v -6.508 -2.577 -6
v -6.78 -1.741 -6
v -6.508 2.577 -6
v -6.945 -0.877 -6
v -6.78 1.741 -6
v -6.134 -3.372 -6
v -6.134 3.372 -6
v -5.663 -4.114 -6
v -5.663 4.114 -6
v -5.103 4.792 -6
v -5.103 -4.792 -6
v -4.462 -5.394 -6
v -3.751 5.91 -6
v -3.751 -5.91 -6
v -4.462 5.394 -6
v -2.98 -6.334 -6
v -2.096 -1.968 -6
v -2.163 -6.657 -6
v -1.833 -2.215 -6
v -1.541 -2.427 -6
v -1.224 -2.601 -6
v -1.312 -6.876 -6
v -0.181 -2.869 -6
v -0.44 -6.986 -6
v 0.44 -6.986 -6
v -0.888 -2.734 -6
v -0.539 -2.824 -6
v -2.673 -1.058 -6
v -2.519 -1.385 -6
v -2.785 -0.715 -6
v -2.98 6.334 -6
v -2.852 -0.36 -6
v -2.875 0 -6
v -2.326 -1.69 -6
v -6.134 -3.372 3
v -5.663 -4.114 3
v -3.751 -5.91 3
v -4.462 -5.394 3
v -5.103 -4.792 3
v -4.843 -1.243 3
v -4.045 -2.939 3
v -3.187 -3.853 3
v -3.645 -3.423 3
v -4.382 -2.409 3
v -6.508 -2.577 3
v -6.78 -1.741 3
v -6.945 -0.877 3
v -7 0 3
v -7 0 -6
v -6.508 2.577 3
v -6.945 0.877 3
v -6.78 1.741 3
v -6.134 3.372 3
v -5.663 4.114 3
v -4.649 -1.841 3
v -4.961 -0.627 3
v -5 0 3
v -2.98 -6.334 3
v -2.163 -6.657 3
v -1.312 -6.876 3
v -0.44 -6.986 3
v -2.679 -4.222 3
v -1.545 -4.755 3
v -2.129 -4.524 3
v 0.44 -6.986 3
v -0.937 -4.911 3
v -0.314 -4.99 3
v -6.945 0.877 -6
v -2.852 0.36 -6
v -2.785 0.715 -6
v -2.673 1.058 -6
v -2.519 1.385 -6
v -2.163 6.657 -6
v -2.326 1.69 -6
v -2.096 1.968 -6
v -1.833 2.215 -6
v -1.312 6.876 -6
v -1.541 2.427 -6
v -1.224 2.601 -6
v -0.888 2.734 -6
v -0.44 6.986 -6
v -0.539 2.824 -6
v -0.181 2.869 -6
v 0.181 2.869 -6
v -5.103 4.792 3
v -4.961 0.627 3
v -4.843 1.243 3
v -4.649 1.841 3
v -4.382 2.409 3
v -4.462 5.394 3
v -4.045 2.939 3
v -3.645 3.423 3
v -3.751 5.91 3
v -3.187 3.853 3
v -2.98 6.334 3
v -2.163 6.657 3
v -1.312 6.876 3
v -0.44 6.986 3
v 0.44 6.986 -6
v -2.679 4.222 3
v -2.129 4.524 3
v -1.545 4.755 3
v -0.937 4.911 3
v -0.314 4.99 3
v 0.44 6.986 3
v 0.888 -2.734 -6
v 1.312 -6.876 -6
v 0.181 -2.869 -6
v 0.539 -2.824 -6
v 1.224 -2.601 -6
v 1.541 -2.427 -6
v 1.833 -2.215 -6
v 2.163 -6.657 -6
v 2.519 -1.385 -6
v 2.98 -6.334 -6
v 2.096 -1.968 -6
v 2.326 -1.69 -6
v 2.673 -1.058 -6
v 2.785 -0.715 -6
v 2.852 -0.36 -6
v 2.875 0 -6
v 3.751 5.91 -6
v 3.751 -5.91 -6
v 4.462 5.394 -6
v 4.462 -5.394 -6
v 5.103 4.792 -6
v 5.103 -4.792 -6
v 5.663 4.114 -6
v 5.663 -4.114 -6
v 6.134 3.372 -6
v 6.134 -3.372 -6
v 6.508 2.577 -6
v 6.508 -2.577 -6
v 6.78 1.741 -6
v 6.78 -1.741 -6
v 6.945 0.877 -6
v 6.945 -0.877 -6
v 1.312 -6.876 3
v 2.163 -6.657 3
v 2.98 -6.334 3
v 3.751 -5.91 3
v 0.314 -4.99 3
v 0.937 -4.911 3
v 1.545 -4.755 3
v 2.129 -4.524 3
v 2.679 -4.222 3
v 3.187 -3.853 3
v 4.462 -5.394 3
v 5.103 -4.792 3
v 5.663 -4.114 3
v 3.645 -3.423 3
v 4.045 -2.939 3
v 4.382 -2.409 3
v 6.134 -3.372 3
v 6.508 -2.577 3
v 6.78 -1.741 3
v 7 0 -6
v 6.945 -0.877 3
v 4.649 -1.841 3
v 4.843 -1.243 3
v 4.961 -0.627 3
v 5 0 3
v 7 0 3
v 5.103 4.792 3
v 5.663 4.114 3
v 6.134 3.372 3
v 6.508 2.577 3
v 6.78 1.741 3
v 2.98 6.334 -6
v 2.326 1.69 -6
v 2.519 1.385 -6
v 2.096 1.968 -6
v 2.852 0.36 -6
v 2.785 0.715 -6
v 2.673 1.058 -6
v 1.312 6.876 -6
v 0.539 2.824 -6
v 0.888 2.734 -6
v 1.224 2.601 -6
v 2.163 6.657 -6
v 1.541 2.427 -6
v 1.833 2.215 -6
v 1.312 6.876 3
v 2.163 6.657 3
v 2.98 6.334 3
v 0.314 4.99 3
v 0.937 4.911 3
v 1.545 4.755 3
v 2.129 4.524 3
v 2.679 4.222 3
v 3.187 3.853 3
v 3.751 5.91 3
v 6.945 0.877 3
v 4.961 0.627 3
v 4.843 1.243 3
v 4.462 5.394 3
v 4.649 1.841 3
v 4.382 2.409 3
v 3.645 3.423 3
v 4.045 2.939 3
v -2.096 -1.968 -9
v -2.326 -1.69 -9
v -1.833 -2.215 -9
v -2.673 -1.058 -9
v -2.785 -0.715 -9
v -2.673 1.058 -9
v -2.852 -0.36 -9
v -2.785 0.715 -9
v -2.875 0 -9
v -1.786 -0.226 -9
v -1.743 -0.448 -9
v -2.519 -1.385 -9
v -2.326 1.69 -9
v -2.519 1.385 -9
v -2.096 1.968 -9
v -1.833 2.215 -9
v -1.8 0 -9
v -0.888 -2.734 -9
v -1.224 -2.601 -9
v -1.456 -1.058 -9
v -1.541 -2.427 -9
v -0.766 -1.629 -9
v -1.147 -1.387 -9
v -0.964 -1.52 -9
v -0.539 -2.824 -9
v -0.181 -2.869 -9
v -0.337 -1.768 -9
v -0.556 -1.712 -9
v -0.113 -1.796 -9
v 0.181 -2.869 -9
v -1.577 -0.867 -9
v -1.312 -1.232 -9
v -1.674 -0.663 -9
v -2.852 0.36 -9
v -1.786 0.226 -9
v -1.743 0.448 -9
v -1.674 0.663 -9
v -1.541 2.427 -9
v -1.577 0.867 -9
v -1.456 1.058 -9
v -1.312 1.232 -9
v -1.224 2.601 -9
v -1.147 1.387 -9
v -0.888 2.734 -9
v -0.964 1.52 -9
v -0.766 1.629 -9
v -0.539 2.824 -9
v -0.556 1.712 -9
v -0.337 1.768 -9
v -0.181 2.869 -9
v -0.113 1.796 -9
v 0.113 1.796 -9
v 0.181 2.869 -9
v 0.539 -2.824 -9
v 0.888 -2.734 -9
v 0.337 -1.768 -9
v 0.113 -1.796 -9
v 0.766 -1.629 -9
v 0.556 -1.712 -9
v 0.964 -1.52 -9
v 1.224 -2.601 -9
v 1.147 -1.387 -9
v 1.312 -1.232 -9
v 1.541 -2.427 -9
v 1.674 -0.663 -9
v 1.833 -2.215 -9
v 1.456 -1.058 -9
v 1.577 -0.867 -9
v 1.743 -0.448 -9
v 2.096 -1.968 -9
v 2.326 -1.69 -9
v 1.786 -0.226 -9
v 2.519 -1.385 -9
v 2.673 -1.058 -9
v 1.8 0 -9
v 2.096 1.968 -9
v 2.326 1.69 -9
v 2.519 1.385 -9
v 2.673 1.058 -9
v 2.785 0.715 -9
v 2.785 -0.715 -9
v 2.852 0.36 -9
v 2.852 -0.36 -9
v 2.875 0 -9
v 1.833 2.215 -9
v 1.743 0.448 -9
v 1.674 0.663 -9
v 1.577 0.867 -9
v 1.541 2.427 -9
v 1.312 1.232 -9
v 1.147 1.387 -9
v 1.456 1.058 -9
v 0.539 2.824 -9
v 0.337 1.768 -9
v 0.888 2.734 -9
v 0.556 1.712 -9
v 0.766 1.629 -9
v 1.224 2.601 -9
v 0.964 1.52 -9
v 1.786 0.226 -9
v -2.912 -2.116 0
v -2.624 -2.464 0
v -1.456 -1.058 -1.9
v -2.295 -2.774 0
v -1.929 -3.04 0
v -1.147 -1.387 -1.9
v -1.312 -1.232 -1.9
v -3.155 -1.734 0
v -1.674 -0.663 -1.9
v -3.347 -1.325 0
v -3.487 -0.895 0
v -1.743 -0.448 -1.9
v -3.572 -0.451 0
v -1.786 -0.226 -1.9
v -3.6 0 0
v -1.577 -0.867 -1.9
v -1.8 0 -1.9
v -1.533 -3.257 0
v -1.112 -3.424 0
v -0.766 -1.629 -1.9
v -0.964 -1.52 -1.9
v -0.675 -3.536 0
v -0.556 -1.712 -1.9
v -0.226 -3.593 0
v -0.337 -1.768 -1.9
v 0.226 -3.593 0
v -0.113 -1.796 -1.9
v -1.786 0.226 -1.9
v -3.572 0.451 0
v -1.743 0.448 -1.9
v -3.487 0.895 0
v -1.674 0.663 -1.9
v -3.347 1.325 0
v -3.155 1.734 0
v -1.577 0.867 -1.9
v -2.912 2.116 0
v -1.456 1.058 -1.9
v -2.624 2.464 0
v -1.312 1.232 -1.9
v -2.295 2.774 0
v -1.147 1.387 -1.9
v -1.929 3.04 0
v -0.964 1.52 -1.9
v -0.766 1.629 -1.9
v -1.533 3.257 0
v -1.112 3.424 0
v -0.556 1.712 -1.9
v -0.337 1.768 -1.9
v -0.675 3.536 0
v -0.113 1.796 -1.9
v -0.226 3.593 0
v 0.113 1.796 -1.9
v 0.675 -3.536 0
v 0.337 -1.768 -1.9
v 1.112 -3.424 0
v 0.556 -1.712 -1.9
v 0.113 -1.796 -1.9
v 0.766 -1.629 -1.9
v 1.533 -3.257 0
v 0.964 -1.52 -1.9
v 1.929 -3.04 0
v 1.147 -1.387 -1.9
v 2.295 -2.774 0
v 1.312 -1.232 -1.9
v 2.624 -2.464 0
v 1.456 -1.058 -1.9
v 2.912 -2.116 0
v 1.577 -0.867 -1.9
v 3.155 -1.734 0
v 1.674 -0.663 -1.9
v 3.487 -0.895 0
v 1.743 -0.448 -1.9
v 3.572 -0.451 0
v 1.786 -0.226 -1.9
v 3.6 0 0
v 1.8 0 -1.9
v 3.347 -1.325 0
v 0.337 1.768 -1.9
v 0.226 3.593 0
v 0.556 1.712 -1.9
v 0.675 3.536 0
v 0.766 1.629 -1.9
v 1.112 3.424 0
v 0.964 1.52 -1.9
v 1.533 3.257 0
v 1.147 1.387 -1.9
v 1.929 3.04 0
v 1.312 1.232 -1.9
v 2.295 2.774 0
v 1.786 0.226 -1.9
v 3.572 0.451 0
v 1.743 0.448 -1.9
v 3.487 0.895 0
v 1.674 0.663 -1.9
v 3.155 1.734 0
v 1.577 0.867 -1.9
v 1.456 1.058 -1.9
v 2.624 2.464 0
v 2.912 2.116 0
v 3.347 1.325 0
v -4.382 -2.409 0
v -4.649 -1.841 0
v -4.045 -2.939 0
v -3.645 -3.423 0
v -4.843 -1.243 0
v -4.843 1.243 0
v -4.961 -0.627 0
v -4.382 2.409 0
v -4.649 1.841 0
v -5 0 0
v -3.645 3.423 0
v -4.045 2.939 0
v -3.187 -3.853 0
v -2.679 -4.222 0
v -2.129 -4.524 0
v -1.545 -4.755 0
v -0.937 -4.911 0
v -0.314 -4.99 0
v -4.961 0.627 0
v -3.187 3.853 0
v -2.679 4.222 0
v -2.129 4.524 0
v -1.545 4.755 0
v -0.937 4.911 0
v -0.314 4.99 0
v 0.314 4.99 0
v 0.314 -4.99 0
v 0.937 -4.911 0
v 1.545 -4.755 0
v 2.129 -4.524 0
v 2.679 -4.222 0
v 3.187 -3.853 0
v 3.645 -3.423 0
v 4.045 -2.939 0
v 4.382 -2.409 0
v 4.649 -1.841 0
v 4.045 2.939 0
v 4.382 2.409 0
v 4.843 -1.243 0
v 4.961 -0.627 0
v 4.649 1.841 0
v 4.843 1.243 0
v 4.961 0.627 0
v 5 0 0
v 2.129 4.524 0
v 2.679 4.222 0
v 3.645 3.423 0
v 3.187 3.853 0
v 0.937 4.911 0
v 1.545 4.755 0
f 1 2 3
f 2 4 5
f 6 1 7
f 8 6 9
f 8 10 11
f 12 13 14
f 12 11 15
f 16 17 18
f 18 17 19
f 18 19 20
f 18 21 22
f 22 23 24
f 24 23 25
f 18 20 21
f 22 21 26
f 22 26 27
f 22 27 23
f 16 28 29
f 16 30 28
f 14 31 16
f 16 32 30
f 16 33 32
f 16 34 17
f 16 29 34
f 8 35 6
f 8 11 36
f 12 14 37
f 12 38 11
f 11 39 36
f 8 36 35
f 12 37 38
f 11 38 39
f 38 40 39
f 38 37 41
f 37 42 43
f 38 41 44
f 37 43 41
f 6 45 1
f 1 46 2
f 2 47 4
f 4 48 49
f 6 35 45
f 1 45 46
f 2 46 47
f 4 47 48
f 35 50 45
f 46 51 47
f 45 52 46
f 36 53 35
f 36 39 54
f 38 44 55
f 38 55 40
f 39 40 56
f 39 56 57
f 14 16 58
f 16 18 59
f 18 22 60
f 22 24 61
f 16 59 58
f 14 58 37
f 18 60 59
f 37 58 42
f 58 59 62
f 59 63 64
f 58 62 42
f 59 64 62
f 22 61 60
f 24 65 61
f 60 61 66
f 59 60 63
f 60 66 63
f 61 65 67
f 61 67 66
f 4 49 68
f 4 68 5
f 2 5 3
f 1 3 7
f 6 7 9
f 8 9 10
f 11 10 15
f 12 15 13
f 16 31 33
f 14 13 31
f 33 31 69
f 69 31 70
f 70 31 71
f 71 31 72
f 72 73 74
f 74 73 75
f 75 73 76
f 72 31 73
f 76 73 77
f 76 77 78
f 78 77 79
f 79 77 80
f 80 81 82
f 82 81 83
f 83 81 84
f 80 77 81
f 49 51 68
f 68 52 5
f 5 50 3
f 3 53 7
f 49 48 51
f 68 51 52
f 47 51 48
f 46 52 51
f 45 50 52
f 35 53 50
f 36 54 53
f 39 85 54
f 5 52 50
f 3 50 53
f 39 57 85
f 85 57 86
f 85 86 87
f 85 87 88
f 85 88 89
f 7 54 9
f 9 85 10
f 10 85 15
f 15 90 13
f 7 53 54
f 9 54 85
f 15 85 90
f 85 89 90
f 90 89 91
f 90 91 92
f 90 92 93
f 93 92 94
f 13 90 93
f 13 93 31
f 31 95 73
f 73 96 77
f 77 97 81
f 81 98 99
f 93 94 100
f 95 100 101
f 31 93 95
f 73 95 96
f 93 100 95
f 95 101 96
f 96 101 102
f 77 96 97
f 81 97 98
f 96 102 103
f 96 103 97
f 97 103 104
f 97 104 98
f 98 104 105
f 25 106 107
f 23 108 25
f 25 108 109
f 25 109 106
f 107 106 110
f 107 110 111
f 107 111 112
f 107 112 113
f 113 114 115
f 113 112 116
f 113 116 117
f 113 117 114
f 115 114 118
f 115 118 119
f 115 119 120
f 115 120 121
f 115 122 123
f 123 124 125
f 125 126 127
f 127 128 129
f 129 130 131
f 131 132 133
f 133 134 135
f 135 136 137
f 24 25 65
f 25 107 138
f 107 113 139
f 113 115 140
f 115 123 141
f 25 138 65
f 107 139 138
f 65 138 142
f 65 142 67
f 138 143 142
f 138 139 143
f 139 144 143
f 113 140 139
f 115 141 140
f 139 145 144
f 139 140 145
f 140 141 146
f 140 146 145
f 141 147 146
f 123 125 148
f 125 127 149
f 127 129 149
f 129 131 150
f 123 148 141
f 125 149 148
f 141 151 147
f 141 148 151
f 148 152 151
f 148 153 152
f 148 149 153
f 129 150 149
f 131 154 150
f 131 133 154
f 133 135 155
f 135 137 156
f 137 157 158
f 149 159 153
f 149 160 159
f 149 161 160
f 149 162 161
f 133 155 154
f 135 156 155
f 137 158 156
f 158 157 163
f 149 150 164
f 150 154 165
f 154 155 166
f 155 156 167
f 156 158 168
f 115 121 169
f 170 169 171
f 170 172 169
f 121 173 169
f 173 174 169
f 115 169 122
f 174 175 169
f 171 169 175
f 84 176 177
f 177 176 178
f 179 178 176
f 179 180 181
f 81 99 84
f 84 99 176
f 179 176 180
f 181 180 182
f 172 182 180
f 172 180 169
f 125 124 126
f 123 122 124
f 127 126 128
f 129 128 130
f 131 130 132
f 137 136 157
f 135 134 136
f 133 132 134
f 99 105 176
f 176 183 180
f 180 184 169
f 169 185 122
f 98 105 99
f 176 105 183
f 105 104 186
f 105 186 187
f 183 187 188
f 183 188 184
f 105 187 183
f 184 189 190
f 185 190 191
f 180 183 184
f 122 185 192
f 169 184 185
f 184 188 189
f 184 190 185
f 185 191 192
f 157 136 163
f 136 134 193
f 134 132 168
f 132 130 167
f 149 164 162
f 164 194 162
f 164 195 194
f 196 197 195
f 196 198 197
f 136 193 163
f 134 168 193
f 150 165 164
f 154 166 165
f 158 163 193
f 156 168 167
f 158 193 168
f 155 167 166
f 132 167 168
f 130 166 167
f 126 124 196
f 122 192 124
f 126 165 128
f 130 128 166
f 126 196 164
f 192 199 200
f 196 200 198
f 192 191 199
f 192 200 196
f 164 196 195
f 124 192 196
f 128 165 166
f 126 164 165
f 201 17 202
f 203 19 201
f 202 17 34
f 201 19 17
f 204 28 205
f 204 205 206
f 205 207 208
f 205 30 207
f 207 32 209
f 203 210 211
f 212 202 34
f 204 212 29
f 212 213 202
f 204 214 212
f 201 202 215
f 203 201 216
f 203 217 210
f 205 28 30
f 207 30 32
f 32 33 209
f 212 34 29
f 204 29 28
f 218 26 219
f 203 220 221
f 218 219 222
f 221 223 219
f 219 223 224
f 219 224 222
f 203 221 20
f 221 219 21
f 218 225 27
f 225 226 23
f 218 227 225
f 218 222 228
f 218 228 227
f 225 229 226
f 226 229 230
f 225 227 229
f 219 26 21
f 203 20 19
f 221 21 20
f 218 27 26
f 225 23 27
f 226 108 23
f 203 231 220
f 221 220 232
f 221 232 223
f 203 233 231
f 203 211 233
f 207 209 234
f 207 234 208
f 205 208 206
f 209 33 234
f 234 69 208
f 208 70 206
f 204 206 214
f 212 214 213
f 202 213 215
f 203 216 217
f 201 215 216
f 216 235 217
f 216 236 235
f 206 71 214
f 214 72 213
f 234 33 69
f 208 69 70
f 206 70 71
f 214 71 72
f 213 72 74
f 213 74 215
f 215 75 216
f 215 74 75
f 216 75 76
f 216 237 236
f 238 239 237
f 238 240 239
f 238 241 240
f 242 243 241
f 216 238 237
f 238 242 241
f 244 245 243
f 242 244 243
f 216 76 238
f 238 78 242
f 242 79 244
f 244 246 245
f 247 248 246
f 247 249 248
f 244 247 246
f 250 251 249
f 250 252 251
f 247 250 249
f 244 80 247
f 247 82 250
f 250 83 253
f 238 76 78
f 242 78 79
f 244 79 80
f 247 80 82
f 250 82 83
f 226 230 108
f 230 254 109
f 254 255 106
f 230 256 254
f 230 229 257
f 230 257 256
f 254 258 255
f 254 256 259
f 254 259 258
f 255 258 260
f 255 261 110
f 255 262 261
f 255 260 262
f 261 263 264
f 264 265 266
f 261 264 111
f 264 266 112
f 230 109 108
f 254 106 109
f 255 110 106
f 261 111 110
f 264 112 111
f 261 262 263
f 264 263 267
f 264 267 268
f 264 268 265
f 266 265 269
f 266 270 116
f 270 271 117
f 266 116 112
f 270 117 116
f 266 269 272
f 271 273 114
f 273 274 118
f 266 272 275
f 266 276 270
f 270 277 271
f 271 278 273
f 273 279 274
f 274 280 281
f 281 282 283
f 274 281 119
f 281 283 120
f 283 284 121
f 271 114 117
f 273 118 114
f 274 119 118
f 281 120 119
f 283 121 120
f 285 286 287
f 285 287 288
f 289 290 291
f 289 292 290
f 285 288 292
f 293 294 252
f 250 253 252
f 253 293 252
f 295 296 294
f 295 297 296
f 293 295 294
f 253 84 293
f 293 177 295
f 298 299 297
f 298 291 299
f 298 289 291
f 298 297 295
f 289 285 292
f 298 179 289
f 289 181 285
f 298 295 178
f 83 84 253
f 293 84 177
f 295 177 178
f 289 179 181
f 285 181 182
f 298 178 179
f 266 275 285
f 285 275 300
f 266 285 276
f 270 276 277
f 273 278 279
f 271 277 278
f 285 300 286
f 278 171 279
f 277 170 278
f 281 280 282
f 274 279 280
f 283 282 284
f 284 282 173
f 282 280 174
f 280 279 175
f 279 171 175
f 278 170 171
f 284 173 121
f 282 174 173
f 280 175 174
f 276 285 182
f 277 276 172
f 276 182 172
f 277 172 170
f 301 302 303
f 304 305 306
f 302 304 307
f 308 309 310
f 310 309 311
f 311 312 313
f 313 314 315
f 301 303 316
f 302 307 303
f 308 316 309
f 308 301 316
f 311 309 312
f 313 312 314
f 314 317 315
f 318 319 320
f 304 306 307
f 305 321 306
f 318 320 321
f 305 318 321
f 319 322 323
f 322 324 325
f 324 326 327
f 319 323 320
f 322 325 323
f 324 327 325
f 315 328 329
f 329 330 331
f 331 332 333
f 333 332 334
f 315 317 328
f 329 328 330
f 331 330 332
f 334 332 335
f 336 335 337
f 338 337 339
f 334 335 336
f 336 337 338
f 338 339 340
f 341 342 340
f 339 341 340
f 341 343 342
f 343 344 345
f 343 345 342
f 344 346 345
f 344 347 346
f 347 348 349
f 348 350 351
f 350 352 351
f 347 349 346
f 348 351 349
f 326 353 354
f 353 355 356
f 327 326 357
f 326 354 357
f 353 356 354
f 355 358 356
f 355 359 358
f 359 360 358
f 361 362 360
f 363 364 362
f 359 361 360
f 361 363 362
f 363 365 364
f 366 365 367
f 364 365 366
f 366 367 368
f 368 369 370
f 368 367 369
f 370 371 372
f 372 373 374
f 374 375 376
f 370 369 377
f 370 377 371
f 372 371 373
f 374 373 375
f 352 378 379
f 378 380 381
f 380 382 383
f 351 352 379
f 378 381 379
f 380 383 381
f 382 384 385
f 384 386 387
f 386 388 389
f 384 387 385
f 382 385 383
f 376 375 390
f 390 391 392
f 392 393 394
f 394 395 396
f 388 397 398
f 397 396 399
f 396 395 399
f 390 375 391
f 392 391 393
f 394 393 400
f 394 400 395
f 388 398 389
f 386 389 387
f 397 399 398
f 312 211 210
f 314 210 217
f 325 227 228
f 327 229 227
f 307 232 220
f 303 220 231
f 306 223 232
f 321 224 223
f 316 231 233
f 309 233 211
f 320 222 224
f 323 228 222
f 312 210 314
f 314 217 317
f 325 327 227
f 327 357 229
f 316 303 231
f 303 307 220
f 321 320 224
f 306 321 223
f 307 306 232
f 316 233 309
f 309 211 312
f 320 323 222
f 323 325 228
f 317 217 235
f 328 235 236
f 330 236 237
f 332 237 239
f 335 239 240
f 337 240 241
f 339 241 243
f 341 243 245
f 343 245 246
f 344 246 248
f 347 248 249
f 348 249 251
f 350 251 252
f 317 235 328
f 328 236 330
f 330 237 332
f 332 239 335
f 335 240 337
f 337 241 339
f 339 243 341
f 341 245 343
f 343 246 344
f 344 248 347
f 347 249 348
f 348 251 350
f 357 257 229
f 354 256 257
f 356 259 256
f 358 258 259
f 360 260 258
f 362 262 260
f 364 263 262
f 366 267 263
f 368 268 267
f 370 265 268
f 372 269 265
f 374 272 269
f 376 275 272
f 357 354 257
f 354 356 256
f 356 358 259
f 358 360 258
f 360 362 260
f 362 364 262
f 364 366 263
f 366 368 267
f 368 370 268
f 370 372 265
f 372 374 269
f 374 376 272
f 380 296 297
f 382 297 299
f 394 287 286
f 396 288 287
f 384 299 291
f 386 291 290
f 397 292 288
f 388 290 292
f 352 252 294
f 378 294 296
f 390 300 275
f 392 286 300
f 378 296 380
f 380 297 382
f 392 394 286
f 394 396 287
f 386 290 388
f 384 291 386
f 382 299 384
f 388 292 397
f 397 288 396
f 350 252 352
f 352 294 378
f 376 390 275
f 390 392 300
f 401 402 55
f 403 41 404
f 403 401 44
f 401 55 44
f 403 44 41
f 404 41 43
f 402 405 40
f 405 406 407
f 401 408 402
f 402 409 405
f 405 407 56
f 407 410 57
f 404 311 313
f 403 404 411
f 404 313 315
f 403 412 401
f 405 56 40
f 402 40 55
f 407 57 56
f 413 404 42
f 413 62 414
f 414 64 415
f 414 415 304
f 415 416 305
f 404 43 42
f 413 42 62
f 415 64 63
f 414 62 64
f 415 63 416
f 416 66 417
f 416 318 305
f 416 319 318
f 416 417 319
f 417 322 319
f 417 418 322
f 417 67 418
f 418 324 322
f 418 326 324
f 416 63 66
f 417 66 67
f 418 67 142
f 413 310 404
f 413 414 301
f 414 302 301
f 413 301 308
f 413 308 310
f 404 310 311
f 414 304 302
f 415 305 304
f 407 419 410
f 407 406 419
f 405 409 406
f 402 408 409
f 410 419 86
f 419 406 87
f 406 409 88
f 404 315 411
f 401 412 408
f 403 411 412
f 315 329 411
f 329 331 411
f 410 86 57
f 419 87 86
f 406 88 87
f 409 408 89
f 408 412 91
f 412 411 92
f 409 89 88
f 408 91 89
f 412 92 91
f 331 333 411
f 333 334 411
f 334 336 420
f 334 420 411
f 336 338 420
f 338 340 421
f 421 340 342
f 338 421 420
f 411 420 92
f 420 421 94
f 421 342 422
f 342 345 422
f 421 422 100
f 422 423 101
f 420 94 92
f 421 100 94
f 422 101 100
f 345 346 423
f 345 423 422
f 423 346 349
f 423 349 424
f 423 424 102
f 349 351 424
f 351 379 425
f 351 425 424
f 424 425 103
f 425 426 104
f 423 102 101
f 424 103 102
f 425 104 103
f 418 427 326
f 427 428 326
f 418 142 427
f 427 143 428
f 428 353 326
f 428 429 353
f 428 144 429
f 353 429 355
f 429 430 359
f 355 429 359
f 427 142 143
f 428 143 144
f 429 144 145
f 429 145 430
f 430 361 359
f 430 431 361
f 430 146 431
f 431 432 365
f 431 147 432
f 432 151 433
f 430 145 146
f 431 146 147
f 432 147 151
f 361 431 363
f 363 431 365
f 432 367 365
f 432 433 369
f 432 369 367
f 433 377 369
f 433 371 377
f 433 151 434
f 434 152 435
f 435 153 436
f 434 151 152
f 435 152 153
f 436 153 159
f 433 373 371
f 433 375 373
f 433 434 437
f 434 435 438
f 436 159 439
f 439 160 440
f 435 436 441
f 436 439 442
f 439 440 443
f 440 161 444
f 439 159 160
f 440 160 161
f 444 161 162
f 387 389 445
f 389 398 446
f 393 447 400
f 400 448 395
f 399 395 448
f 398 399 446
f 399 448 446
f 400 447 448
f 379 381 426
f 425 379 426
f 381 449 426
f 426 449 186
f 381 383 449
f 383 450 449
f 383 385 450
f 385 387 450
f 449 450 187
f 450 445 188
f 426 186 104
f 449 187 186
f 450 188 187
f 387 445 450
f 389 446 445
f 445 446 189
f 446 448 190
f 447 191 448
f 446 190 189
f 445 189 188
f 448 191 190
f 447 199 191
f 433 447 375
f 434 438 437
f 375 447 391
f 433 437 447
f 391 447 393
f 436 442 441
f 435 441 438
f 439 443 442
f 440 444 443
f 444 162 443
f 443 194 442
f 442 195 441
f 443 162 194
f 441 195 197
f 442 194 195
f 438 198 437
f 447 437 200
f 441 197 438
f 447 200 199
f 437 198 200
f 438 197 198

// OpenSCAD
$fn = 50;


difference() {
	union() {
		translate(v = [0, 0, -6.0000000000]) {
			cylinder(h = 9, r = 7.0000000000);
		}
		#translate(v = [0, 0, -9.0000000000]) {
			cylinder(h = 9, r = 2.8750000000);
		}
	}
	union() {
		translate(v = [0, 0, 0]) {
			rotate(a = [0, 0, 0]) {
				difference() {
					union() {
						translate(v = [0, 0, -9.0000000000]) {
							cylinder(h = 9, r = 1.5000000000);
						}
						translate(v = [0, 0, -1.9000000000]) {
							cylinder(h = 1.9000000000, r1 = 1.8000000000, r2 = 3.6000000000);
						}
						translate(v = [0, 0, -9.0000000000]) {
							cylinder(h = 9, r = 1.8000000000);
						}
						translate(v = [0, 0, -9.0000000000]) {
							cylinder(h = 9, r = 1.5000000000);
						}
					}
					union();
				}
			}
		}
		#cylinder(h = 3, r = 5.0000000000);
	}
}
